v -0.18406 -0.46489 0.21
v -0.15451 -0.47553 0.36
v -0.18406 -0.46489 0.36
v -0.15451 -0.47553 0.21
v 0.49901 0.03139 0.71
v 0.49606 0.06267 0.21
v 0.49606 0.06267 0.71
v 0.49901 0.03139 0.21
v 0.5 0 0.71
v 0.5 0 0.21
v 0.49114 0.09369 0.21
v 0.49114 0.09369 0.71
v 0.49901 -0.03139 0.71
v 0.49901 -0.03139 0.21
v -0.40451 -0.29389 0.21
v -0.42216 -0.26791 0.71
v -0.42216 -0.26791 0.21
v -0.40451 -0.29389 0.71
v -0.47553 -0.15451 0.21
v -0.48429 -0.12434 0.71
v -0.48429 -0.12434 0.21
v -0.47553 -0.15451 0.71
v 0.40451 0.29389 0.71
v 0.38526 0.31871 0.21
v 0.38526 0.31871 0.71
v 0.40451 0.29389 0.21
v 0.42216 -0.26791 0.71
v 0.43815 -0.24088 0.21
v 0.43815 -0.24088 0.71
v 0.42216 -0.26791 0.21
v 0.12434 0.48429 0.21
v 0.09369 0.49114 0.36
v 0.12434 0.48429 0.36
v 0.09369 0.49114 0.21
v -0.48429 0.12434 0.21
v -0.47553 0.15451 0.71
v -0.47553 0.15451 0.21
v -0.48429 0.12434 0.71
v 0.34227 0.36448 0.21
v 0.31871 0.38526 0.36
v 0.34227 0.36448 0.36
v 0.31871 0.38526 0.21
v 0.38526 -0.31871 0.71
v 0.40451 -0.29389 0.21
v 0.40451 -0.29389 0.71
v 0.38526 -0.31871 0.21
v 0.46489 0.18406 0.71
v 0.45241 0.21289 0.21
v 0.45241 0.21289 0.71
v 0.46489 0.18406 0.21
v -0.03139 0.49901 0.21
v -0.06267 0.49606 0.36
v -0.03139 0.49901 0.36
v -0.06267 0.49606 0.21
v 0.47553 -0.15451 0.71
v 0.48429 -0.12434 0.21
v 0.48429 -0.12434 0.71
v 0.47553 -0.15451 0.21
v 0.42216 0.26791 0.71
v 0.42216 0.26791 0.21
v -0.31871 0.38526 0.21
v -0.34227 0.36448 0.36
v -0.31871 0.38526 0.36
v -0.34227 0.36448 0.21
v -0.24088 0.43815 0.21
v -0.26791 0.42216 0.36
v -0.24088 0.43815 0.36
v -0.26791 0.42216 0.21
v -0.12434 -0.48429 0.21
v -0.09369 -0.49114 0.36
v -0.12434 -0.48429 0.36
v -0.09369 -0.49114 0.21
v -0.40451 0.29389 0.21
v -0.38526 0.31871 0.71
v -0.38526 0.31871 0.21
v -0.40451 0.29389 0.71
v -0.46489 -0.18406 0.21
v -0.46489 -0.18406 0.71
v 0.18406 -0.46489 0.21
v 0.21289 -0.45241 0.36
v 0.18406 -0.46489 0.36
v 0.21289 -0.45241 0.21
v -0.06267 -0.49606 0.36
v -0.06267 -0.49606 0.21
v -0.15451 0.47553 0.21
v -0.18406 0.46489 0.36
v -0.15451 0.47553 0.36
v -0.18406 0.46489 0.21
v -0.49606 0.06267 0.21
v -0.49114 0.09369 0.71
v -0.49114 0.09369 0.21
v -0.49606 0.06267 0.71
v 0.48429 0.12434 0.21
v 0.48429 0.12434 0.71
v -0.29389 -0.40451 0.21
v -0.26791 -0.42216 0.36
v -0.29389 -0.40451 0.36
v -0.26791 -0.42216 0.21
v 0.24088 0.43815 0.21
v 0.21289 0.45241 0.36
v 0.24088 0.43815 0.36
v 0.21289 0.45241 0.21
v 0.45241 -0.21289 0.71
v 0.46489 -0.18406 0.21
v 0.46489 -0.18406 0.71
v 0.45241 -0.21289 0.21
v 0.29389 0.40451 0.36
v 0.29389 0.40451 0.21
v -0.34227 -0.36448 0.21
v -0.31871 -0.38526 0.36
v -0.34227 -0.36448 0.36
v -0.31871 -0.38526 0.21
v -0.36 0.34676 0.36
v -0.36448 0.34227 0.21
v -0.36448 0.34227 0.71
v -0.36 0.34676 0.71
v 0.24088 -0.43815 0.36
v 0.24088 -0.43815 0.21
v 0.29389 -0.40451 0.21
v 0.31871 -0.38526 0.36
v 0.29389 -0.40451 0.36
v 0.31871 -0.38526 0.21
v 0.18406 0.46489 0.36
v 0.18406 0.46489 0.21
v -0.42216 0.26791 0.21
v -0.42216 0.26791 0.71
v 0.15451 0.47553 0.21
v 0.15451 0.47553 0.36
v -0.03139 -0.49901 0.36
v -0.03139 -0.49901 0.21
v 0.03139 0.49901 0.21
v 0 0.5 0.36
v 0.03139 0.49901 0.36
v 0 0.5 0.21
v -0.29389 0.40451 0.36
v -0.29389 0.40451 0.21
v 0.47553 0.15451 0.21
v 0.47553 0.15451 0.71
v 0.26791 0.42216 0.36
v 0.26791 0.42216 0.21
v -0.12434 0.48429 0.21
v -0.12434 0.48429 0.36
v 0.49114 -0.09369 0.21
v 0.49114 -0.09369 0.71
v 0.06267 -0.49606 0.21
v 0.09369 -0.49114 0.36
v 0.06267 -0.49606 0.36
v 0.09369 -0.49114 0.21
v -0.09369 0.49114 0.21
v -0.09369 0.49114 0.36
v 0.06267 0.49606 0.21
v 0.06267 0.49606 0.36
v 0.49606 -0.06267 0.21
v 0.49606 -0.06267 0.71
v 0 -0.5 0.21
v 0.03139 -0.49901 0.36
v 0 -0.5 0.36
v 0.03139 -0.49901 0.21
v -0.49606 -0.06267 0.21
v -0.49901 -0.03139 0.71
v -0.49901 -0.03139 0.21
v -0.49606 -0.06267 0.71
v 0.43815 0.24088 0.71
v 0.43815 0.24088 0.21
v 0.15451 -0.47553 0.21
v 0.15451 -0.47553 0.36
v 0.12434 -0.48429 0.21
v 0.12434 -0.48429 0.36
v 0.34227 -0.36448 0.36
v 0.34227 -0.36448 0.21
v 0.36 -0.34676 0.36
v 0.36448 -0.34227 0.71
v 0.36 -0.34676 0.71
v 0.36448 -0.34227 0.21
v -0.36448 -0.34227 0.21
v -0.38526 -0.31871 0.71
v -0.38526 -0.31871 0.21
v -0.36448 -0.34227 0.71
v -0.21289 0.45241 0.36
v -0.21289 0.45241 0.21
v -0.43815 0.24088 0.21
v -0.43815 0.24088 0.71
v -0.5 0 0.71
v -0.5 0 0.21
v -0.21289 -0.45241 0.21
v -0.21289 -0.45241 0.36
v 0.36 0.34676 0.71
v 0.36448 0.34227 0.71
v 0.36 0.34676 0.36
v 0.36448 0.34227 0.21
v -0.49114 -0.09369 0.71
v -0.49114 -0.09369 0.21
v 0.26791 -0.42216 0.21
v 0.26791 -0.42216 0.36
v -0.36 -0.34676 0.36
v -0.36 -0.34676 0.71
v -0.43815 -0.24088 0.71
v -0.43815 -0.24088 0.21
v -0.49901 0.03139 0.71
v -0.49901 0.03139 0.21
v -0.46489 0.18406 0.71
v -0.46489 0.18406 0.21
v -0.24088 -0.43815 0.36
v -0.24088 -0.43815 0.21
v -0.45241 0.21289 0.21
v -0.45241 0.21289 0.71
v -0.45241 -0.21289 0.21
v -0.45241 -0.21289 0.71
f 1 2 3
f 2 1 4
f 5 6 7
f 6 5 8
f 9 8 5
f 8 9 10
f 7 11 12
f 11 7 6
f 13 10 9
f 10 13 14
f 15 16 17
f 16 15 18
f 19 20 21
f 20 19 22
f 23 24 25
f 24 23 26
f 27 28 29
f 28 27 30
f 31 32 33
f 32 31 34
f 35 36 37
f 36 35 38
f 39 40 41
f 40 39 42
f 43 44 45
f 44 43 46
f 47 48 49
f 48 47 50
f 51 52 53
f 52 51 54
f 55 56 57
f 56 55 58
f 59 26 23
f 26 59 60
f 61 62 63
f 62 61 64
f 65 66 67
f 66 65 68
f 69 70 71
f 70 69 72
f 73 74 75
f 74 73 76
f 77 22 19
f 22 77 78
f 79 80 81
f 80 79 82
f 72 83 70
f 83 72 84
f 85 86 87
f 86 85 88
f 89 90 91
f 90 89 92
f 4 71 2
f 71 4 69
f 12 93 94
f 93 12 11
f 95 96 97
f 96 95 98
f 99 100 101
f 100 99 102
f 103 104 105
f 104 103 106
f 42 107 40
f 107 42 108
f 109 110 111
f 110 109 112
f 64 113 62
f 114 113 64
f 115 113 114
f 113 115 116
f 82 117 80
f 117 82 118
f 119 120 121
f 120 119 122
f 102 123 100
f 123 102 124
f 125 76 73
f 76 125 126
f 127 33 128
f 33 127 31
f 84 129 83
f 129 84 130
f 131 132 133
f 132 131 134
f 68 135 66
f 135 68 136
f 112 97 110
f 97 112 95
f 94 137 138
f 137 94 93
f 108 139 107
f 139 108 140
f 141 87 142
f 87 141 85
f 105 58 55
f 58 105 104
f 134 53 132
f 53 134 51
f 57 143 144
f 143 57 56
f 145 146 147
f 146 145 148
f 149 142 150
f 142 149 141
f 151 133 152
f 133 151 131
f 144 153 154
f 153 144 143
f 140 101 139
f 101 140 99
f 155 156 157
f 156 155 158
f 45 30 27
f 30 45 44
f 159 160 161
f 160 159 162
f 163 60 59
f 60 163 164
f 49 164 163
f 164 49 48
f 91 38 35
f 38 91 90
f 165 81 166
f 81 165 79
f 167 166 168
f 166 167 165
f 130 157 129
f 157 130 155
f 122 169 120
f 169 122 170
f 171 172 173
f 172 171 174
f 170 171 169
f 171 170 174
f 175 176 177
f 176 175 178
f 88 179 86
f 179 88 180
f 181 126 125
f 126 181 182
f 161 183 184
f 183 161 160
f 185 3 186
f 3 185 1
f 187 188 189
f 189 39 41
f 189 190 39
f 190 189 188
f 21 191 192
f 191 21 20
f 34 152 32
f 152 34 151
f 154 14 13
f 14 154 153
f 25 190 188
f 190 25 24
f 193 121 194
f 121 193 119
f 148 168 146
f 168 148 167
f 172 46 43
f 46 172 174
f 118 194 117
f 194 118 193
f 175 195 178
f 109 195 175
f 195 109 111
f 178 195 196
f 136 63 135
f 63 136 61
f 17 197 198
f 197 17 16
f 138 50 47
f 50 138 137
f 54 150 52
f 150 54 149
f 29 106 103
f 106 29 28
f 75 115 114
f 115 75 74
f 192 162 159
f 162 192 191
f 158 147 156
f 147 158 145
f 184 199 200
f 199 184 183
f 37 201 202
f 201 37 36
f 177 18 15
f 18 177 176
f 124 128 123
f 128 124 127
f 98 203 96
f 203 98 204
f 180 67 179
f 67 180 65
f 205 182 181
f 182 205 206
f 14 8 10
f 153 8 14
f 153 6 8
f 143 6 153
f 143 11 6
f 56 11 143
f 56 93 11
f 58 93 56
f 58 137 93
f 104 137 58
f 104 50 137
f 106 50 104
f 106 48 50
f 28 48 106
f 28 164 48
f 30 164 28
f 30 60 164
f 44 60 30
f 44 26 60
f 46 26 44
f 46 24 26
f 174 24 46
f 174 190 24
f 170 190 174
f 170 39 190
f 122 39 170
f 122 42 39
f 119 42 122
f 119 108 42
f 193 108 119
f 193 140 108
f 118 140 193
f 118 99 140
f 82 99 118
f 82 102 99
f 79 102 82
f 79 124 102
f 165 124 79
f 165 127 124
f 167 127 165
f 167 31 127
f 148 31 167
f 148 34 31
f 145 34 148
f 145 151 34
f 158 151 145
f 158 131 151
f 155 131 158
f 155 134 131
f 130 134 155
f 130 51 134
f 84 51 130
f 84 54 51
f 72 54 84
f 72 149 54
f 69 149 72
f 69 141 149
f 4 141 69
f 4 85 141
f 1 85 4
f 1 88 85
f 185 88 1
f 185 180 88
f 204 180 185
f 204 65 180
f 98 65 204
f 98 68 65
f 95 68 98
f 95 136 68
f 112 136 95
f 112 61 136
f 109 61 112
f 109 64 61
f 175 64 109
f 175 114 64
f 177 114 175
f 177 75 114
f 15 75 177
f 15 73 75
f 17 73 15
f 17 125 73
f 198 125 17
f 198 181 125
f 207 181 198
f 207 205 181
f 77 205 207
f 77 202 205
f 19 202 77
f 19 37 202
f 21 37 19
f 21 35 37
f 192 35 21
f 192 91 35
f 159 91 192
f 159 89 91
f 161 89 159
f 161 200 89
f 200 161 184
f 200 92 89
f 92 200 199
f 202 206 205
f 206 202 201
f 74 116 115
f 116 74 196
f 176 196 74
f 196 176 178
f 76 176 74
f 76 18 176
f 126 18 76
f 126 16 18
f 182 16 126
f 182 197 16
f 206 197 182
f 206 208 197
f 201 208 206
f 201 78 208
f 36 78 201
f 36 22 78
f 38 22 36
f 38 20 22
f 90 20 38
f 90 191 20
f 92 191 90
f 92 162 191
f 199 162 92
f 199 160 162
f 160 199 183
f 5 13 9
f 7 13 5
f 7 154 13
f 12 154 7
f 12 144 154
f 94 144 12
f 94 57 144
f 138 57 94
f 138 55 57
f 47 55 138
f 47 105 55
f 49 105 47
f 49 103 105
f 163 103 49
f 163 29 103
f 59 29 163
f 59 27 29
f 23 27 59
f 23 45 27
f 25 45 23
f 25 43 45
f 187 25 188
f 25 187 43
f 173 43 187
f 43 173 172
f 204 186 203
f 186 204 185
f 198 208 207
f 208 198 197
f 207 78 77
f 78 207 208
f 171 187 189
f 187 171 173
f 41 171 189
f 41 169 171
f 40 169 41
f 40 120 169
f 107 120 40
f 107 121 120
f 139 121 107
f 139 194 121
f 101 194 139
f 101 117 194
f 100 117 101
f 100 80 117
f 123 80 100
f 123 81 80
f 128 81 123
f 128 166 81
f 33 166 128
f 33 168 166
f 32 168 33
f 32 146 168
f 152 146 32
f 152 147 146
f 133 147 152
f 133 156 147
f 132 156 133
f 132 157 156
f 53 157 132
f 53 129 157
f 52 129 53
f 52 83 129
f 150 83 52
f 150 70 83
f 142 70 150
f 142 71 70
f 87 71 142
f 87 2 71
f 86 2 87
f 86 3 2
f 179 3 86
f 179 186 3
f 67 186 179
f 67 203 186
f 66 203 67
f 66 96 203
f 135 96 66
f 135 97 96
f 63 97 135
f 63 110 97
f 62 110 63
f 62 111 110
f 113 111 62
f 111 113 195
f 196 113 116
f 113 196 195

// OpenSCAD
// base_moving.scad - Moving base of arm

base_moving(100/100, 50/100, 21/100);

// The $fn parameter will influence all objects inside this module
// It can, optionally, be overridden when instantiating the module
module base_moving(size=50, height=20, tx, $fn=100) {
    // Temporary variables
    hole = size*0.8;
    cutCylinderHeight = size;
    hole_z = tx + (hole/2) + 15/100;
    // One positive object (sphere) and three negative objects (cylinders)
    
    difference() {
        translate([0, 0, tx]) cylinder(d=size, h=height);
        
        translate([0, 0, hole_z]) cube([hole*0.9, cutCylinderHeight, hole], center=true);
        // The '#' operator highlights the object
        //#rotate([90, 0, 0]) cylinder(d=hole, h=cylinderHeight, center=true);
        //rotate([0, 90, 0]) cylinder(d=hole, h=cylinderHeight, center=true);
    }
    
}

echo(version=version());
// Written by Clifford Wolf <clifford@clifford.at> and Marius
// Kintel <marius@kintel.net>
//
// To the extent possible under law, the author(s) have dedicated all
// copyright and related and neighboring rights to this software to the
// public domain worldwide. This software is distributed without any
// warranty.
//
// You should have received a copy of the CC0 Public Domain
// Dedication along with this software.
// If not, see <http://creativecommons.org/publicdomain/zero/1.0/>.
